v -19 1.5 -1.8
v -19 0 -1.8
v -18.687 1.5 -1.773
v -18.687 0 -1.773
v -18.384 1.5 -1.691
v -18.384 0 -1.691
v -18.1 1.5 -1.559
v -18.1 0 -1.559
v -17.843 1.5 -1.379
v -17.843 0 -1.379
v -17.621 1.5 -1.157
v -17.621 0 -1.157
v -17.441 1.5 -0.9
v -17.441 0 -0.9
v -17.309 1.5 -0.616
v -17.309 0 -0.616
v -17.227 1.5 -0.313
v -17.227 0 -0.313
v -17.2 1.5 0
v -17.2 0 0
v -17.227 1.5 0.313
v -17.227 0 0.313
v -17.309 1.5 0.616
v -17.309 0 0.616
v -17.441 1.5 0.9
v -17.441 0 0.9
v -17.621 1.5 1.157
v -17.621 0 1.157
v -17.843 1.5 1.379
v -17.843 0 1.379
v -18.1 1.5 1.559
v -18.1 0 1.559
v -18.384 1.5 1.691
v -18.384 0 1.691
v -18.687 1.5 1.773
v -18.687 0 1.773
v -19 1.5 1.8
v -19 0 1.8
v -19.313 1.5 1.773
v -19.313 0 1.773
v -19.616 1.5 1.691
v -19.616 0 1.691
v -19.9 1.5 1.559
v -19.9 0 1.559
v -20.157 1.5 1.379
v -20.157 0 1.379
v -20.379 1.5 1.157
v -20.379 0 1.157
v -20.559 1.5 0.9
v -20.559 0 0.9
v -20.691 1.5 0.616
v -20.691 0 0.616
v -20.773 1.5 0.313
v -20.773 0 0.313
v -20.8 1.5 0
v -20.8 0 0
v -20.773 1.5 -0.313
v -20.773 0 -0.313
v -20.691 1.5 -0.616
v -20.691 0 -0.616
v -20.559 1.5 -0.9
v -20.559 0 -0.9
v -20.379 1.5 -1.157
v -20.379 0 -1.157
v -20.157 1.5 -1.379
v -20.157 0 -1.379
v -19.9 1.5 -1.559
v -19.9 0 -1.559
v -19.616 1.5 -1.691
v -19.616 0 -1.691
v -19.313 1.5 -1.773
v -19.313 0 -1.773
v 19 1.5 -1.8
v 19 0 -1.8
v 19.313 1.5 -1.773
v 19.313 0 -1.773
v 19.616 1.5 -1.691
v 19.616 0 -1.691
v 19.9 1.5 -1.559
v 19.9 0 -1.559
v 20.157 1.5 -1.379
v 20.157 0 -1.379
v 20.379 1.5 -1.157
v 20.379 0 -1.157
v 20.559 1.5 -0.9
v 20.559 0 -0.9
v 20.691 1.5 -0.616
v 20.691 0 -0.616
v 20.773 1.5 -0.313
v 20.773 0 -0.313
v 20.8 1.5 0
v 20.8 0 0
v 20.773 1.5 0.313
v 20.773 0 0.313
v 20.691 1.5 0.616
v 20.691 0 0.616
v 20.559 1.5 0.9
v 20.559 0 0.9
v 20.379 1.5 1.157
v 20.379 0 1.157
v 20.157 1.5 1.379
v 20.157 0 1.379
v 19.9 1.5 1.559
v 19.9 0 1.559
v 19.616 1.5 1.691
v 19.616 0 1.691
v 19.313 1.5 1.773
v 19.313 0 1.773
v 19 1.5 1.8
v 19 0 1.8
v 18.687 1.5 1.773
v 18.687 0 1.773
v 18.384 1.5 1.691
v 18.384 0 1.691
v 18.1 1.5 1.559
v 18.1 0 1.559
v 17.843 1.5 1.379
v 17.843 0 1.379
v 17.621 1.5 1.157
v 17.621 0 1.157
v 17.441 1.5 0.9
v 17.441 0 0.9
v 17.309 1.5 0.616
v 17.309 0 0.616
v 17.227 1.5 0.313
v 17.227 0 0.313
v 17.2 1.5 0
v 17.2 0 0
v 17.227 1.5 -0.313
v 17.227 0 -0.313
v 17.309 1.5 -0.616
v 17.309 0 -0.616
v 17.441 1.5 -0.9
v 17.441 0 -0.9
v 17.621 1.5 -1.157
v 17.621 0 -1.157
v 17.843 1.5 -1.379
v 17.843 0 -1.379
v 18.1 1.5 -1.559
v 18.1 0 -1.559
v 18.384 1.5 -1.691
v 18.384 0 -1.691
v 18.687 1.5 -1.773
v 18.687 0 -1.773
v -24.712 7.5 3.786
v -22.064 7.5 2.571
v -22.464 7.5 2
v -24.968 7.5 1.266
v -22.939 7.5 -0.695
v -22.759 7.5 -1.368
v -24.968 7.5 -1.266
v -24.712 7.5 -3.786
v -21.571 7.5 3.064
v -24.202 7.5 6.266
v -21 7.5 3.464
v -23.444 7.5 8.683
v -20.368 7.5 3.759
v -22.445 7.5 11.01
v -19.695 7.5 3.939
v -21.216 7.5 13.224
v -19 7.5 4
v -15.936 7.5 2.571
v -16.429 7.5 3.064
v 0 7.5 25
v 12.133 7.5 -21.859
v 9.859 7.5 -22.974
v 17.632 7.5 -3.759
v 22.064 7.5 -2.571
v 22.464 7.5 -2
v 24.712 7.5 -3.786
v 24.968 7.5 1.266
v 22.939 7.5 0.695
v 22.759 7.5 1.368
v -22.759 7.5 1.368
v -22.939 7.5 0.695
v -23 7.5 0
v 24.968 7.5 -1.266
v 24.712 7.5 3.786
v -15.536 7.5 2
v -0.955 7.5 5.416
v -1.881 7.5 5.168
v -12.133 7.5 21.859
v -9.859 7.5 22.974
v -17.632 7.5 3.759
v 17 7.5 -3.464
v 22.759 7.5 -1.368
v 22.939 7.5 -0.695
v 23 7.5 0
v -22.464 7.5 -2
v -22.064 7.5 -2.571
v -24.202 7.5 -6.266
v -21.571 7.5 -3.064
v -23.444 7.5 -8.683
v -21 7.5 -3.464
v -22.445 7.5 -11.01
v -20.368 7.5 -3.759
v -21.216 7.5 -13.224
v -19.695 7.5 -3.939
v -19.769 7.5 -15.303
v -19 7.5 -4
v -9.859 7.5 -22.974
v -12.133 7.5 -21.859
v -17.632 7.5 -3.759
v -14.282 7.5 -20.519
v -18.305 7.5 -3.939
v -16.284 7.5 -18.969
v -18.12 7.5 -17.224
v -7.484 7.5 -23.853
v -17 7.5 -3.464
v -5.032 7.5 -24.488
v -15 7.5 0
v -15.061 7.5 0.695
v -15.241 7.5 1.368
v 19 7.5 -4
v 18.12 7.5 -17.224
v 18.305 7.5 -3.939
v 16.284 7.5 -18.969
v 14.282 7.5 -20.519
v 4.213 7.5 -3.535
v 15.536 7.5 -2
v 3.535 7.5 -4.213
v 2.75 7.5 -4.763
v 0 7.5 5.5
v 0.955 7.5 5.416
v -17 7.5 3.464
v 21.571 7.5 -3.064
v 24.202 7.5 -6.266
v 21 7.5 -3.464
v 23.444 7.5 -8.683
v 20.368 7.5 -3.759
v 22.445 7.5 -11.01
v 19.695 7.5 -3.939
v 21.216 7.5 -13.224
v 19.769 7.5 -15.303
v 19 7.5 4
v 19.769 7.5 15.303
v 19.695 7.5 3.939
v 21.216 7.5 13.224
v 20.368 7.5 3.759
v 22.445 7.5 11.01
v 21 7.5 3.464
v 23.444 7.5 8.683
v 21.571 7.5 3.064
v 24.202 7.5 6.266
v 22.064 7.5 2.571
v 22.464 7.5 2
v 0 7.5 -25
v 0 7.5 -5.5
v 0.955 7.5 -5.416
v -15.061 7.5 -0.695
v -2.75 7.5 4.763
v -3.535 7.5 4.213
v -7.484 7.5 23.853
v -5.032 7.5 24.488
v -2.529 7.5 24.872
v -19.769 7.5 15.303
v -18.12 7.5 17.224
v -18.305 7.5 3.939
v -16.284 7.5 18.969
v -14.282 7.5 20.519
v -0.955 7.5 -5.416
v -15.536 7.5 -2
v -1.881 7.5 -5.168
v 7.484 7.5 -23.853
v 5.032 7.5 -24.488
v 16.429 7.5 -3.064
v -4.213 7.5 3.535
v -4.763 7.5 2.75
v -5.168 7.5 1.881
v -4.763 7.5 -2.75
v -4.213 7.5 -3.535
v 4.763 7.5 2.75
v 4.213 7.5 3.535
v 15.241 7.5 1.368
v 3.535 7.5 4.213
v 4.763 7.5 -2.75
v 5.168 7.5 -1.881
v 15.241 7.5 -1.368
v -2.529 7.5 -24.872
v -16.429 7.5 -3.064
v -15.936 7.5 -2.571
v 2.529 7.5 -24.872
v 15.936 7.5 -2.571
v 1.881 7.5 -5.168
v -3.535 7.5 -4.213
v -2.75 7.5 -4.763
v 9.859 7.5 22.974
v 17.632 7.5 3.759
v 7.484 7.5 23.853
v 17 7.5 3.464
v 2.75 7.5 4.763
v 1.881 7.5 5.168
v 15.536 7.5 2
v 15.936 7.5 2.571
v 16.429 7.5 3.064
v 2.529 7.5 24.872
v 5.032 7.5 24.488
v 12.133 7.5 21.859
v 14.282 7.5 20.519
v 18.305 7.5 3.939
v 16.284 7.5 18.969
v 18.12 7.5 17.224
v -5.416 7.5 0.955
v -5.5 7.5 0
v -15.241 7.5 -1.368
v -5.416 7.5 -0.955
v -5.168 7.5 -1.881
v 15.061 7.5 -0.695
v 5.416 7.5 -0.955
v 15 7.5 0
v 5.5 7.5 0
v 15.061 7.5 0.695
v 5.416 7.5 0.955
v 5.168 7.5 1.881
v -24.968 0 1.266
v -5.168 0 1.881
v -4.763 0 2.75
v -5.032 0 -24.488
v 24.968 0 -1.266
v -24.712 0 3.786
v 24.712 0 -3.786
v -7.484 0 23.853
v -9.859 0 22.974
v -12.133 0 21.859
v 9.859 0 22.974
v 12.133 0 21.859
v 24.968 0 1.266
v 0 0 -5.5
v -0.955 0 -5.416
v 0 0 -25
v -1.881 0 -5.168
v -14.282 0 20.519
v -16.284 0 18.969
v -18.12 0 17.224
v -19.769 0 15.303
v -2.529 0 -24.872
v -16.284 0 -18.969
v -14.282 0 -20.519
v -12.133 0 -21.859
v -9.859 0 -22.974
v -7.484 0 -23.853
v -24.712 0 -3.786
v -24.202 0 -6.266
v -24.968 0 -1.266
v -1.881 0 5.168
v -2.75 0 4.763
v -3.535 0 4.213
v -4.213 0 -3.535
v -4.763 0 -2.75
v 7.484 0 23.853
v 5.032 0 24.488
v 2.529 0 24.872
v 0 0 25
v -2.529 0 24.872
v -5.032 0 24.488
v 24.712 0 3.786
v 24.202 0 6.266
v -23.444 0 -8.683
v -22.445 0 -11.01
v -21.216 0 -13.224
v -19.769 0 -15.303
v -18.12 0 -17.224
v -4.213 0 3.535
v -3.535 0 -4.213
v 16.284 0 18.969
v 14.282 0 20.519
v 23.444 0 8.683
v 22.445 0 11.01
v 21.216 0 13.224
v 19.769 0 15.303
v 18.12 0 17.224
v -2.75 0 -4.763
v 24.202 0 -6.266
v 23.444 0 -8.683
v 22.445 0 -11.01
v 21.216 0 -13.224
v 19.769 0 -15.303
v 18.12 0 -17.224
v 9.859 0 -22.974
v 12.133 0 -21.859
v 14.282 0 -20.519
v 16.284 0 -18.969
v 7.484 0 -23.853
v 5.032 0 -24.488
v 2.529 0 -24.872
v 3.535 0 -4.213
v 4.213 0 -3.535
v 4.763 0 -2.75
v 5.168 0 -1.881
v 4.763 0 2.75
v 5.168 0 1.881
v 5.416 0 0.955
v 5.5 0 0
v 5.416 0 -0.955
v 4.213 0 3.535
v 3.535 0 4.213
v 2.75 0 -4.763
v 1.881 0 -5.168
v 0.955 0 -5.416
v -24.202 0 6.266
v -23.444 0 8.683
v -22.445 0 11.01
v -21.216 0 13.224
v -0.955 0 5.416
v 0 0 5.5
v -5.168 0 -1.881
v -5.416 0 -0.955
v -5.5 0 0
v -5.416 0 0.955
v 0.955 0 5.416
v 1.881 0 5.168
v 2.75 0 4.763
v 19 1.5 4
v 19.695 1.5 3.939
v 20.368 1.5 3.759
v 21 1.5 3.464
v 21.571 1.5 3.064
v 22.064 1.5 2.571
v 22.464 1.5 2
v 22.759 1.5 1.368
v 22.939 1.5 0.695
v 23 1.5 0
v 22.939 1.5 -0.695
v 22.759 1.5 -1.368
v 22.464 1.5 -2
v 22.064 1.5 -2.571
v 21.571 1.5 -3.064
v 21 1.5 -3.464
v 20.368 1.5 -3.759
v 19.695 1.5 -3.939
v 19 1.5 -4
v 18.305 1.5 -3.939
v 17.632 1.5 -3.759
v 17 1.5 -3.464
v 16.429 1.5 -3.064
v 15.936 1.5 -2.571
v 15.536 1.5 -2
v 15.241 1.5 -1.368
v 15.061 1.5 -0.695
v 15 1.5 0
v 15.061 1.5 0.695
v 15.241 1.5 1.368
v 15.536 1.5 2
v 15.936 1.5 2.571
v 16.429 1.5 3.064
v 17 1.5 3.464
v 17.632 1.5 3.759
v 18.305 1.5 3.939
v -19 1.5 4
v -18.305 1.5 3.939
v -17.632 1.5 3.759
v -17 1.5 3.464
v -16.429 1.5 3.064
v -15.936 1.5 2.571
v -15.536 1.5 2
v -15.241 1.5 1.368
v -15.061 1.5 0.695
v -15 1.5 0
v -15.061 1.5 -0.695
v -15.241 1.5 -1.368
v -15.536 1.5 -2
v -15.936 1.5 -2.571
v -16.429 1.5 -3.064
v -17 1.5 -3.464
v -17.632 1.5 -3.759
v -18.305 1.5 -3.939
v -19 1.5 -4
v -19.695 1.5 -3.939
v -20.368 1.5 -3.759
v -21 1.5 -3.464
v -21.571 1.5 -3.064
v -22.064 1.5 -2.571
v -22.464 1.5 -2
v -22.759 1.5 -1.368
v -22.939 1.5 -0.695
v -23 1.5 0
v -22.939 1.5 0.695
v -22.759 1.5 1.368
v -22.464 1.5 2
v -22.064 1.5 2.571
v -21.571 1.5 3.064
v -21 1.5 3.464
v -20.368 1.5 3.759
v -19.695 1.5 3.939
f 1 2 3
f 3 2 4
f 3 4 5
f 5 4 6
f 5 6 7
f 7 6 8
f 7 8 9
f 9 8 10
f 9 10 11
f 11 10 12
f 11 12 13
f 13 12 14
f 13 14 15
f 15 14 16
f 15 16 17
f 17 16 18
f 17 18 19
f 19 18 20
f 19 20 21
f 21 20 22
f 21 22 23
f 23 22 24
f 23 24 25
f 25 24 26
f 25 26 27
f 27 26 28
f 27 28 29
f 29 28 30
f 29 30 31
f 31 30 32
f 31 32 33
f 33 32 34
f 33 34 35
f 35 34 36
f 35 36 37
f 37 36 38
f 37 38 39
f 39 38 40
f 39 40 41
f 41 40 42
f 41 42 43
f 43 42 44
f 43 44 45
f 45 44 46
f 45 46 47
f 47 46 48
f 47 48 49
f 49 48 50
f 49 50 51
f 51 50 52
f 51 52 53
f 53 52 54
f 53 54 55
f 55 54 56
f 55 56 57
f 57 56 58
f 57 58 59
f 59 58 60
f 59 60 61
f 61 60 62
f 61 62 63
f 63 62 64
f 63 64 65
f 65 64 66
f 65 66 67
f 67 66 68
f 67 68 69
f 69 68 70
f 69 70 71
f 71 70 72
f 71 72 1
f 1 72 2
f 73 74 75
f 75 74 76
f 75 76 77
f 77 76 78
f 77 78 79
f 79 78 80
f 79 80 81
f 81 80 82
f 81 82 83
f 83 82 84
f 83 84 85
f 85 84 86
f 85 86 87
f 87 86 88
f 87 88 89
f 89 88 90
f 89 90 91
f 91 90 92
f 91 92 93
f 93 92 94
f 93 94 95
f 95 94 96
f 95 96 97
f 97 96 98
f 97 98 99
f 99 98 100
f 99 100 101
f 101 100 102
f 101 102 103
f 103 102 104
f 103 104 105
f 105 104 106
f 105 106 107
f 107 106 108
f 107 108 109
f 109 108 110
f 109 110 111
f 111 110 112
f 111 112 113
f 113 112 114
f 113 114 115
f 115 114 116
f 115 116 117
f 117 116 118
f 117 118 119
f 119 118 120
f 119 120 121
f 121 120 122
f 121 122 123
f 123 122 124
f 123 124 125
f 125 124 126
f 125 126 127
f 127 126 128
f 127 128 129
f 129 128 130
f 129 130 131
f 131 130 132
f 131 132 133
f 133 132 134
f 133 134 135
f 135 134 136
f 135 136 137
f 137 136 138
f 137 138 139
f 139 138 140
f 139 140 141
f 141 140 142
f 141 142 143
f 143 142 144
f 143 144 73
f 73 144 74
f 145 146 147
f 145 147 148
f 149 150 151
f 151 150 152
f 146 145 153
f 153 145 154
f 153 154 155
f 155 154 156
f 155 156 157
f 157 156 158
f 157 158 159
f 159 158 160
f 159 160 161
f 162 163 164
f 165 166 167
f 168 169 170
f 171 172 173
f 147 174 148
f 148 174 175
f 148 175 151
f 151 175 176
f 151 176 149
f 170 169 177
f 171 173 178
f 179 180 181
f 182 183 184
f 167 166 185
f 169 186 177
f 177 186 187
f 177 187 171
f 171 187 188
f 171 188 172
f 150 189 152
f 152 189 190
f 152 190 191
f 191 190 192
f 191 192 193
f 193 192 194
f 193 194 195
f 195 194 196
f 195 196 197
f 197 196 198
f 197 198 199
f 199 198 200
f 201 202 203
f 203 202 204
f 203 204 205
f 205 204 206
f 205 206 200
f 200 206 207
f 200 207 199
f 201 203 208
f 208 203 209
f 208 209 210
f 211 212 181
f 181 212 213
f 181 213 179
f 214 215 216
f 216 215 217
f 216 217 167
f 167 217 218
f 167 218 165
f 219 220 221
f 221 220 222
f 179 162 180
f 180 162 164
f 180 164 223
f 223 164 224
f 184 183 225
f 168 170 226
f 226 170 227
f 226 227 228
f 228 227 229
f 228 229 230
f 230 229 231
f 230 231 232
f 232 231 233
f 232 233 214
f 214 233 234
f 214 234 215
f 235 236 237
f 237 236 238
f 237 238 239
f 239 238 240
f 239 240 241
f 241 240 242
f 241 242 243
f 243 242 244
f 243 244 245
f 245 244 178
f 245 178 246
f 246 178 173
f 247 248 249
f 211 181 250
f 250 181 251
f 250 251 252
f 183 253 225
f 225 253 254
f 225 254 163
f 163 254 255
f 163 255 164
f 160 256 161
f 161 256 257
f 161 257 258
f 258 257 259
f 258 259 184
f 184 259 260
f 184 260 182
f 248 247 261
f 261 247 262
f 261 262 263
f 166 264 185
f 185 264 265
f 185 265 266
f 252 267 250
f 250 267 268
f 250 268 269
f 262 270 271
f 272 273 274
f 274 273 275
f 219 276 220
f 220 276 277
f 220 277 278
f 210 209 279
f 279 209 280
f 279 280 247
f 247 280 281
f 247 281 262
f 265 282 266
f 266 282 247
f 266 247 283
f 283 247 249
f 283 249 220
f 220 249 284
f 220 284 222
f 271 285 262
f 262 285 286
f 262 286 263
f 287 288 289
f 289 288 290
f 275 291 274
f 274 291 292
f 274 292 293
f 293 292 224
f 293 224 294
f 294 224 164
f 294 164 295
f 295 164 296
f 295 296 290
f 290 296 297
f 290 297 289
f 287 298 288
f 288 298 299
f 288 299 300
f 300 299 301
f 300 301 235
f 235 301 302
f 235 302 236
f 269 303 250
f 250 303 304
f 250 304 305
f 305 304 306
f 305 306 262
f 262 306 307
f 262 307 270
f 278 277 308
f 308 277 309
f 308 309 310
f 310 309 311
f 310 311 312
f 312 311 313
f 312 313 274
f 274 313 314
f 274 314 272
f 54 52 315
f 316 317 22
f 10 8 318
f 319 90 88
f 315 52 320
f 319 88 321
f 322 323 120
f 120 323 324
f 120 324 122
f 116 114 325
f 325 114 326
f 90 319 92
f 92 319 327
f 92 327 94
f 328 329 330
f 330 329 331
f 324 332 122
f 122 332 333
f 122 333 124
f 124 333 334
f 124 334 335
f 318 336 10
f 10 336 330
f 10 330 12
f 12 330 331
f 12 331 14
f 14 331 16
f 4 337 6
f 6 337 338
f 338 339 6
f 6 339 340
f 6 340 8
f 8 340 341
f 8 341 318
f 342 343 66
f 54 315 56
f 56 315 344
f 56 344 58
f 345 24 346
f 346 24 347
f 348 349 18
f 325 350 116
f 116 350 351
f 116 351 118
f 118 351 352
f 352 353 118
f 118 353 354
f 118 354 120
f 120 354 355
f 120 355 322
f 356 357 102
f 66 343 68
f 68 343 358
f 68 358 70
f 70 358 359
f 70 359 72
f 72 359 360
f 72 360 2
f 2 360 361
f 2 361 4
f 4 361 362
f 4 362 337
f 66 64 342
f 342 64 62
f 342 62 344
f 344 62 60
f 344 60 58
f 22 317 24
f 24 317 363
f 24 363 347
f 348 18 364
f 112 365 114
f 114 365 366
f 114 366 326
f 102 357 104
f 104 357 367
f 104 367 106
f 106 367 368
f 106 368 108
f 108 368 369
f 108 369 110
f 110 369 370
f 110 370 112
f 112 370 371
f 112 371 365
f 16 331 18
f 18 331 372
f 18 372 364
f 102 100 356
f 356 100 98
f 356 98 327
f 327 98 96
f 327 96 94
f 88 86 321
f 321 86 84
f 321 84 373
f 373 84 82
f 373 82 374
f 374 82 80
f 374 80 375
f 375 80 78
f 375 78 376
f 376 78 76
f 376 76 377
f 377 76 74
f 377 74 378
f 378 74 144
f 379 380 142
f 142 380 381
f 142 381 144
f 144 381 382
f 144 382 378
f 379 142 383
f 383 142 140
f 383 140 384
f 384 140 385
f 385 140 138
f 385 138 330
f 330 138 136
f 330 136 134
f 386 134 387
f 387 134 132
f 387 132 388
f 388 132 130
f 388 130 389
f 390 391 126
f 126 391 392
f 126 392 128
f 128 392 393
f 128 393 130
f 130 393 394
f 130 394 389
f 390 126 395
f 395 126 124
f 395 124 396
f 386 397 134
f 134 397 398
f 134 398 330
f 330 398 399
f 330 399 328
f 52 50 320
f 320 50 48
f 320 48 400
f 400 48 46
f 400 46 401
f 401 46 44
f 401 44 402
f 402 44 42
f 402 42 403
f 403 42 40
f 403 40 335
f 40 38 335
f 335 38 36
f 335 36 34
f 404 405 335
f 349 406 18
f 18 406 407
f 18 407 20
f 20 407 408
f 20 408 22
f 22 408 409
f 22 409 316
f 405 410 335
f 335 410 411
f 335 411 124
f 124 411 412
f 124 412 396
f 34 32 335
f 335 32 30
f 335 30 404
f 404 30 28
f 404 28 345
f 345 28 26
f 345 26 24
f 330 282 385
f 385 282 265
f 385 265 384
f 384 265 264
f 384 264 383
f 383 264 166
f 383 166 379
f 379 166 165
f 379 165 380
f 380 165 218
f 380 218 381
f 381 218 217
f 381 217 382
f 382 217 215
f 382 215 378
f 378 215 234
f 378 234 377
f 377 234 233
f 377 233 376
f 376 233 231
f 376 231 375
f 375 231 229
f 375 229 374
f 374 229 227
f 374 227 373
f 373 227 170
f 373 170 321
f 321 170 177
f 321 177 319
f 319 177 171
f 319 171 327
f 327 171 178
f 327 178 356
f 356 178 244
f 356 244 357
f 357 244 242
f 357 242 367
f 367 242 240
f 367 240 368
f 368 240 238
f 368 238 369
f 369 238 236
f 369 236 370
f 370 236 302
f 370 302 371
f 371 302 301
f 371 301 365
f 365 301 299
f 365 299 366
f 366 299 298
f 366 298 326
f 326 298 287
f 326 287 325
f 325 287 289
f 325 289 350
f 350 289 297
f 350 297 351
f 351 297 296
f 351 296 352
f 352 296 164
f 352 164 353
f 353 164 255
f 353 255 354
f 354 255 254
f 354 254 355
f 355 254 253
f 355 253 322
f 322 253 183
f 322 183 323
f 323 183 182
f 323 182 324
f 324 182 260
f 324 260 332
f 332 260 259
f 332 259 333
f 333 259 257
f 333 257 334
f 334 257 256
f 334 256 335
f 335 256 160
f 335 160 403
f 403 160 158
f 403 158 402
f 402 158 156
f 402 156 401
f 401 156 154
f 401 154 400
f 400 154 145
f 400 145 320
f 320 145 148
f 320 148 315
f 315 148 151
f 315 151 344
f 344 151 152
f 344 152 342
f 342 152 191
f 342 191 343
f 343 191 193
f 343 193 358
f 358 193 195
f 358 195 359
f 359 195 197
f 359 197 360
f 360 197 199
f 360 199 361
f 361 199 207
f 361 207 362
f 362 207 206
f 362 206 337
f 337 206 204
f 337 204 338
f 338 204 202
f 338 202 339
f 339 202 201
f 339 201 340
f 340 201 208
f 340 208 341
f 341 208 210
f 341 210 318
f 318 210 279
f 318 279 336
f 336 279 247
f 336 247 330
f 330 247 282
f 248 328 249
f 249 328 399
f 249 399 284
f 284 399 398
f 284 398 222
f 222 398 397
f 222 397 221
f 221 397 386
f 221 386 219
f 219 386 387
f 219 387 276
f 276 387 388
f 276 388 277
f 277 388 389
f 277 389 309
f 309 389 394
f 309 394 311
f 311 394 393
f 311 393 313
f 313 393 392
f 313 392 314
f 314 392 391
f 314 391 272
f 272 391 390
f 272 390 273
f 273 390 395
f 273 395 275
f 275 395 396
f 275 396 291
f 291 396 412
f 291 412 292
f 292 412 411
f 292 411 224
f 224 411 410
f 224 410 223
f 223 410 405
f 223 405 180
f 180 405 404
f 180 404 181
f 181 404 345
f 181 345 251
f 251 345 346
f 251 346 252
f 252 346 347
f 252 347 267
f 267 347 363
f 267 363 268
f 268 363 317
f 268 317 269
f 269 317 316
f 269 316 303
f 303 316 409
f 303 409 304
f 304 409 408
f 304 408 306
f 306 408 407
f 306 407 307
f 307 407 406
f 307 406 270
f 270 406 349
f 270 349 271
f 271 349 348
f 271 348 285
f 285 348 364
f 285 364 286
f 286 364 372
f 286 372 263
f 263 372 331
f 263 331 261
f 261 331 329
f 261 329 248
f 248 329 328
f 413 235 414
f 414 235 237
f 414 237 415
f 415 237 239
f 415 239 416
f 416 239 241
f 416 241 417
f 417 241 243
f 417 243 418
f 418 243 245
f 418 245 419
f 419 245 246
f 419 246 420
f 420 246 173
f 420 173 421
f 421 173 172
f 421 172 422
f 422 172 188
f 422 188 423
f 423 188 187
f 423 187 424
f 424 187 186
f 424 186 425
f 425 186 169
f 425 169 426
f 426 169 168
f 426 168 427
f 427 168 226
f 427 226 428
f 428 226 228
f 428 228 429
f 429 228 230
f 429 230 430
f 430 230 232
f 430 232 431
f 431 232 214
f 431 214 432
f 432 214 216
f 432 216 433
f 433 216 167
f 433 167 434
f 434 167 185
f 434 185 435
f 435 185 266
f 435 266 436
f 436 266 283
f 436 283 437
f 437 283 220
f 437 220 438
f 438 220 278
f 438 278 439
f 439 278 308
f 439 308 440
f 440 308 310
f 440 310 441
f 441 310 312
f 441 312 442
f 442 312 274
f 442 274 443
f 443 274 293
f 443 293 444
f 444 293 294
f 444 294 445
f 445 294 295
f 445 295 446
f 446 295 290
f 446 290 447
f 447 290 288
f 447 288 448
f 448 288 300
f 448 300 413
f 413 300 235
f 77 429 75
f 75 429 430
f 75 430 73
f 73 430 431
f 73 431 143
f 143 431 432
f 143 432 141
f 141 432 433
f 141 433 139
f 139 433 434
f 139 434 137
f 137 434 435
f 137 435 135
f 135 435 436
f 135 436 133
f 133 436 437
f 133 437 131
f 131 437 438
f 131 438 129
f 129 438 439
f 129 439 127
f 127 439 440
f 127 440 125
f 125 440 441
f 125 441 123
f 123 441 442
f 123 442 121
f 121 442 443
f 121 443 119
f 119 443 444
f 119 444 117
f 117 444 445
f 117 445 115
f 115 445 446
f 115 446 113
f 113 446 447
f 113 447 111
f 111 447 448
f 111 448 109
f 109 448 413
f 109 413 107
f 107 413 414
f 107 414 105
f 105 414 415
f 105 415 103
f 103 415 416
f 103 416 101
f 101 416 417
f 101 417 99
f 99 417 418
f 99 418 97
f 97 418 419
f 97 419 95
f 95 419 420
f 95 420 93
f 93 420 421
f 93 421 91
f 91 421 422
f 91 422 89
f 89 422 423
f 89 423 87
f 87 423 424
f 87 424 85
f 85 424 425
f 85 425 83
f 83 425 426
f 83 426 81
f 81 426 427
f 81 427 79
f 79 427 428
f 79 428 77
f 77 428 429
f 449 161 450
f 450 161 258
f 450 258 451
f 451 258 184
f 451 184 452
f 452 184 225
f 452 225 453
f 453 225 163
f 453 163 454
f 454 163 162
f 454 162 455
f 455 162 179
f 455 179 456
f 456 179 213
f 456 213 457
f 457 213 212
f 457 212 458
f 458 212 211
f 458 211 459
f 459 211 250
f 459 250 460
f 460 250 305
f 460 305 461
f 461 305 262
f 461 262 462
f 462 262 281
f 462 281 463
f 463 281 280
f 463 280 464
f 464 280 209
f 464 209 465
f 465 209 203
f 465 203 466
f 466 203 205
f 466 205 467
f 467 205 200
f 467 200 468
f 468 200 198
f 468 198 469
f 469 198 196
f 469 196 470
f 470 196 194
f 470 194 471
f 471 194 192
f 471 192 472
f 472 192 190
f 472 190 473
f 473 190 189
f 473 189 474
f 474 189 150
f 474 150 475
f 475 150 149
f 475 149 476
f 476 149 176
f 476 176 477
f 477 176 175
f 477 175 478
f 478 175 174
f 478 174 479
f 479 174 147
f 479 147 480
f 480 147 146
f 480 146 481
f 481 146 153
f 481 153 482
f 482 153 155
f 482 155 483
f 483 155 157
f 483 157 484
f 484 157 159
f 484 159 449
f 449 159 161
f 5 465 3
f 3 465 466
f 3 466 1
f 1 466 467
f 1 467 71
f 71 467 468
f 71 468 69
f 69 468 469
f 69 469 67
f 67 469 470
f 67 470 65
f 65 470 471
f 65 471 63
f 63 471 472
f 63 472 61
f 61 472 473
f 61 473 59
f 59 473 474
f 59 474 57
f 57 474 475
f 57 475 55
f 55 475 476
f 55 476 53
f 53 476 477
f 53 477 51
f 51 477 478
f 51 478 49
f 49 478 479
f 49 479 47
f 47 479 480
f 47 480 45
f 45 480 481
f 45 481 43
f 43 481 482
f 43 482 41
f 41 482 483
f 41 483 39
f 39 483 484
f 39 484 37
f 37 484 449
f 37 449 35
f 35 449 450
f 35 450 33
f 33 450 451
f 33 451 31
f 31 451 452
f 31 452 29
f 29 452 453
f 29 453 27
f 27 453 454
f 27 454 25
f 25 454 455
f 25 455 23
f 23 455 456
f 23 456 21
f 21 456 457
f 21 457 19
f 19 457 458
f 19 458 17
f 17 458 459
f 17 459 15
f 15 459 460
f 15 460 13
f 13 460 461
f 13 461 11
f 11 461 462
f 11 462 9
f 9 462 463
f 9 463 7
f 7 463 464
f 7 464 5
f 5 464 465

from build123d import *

# Parameters (mm, degrees)
SKETCH1_R           = 25
SKETCH1_R_2         = 1.8
SKETCH1_R_3         = 5.5
BOSS_EXTRUDE1_DEPTH = 7.5
SKETCH2_R           = 4
CUT_EXTRUDE1_DEPTH  = 6


with BuildPart() as part:
    # Sketch1 → Boss-Extrude1 (new body)
    with BuildSketch(Plane(origin=(0, 0, 0), x_dir=(1, 0, 0), z_dir=(0, 1, 0))):
        with Locations(Location((0, 0, 0), (0, 0, 270))):
            Circle(SKETCH1_R)
        with Locations(Location((-19, 0, 0), (0, 0, 270))):
            Circle(SKETCH1_R_2, mode=Mode.SUBTRACT)
        with Locations(Location((19, 0, 0), (0, 0, 90))):
            Circle(SKETCH1_R_2, mode=Mode.SUBTRACT)
        with Locations(Location((0, 0, 0), (0, 0, 270))):
            Circle(SKETCH1_R_3, mode=Mode.SUBTRACT)
    extrude(amount=BOSS_EXTRUDE1_DEPTH)

    # Sketch2 → Cut-Extrude1 (cut)
    with BuildSketch(Plane(origin=(0, 7.5, 0), x_dir=(1, 0, 0), z_dir=(0, 1, 0))):
        with Locations(Location((-19, 0, 0), (0, 0, 270))):
            Circle(SKETCH2_R)
        with Locations(Location((19, 0, 0), (0, 0, 270))):
            Circle(SKETCH2_R)
    extrude(amount=-CUT_EXTRUDE1_DEPTH, mode=Mode.SUBTRACT)


solid = part.part
